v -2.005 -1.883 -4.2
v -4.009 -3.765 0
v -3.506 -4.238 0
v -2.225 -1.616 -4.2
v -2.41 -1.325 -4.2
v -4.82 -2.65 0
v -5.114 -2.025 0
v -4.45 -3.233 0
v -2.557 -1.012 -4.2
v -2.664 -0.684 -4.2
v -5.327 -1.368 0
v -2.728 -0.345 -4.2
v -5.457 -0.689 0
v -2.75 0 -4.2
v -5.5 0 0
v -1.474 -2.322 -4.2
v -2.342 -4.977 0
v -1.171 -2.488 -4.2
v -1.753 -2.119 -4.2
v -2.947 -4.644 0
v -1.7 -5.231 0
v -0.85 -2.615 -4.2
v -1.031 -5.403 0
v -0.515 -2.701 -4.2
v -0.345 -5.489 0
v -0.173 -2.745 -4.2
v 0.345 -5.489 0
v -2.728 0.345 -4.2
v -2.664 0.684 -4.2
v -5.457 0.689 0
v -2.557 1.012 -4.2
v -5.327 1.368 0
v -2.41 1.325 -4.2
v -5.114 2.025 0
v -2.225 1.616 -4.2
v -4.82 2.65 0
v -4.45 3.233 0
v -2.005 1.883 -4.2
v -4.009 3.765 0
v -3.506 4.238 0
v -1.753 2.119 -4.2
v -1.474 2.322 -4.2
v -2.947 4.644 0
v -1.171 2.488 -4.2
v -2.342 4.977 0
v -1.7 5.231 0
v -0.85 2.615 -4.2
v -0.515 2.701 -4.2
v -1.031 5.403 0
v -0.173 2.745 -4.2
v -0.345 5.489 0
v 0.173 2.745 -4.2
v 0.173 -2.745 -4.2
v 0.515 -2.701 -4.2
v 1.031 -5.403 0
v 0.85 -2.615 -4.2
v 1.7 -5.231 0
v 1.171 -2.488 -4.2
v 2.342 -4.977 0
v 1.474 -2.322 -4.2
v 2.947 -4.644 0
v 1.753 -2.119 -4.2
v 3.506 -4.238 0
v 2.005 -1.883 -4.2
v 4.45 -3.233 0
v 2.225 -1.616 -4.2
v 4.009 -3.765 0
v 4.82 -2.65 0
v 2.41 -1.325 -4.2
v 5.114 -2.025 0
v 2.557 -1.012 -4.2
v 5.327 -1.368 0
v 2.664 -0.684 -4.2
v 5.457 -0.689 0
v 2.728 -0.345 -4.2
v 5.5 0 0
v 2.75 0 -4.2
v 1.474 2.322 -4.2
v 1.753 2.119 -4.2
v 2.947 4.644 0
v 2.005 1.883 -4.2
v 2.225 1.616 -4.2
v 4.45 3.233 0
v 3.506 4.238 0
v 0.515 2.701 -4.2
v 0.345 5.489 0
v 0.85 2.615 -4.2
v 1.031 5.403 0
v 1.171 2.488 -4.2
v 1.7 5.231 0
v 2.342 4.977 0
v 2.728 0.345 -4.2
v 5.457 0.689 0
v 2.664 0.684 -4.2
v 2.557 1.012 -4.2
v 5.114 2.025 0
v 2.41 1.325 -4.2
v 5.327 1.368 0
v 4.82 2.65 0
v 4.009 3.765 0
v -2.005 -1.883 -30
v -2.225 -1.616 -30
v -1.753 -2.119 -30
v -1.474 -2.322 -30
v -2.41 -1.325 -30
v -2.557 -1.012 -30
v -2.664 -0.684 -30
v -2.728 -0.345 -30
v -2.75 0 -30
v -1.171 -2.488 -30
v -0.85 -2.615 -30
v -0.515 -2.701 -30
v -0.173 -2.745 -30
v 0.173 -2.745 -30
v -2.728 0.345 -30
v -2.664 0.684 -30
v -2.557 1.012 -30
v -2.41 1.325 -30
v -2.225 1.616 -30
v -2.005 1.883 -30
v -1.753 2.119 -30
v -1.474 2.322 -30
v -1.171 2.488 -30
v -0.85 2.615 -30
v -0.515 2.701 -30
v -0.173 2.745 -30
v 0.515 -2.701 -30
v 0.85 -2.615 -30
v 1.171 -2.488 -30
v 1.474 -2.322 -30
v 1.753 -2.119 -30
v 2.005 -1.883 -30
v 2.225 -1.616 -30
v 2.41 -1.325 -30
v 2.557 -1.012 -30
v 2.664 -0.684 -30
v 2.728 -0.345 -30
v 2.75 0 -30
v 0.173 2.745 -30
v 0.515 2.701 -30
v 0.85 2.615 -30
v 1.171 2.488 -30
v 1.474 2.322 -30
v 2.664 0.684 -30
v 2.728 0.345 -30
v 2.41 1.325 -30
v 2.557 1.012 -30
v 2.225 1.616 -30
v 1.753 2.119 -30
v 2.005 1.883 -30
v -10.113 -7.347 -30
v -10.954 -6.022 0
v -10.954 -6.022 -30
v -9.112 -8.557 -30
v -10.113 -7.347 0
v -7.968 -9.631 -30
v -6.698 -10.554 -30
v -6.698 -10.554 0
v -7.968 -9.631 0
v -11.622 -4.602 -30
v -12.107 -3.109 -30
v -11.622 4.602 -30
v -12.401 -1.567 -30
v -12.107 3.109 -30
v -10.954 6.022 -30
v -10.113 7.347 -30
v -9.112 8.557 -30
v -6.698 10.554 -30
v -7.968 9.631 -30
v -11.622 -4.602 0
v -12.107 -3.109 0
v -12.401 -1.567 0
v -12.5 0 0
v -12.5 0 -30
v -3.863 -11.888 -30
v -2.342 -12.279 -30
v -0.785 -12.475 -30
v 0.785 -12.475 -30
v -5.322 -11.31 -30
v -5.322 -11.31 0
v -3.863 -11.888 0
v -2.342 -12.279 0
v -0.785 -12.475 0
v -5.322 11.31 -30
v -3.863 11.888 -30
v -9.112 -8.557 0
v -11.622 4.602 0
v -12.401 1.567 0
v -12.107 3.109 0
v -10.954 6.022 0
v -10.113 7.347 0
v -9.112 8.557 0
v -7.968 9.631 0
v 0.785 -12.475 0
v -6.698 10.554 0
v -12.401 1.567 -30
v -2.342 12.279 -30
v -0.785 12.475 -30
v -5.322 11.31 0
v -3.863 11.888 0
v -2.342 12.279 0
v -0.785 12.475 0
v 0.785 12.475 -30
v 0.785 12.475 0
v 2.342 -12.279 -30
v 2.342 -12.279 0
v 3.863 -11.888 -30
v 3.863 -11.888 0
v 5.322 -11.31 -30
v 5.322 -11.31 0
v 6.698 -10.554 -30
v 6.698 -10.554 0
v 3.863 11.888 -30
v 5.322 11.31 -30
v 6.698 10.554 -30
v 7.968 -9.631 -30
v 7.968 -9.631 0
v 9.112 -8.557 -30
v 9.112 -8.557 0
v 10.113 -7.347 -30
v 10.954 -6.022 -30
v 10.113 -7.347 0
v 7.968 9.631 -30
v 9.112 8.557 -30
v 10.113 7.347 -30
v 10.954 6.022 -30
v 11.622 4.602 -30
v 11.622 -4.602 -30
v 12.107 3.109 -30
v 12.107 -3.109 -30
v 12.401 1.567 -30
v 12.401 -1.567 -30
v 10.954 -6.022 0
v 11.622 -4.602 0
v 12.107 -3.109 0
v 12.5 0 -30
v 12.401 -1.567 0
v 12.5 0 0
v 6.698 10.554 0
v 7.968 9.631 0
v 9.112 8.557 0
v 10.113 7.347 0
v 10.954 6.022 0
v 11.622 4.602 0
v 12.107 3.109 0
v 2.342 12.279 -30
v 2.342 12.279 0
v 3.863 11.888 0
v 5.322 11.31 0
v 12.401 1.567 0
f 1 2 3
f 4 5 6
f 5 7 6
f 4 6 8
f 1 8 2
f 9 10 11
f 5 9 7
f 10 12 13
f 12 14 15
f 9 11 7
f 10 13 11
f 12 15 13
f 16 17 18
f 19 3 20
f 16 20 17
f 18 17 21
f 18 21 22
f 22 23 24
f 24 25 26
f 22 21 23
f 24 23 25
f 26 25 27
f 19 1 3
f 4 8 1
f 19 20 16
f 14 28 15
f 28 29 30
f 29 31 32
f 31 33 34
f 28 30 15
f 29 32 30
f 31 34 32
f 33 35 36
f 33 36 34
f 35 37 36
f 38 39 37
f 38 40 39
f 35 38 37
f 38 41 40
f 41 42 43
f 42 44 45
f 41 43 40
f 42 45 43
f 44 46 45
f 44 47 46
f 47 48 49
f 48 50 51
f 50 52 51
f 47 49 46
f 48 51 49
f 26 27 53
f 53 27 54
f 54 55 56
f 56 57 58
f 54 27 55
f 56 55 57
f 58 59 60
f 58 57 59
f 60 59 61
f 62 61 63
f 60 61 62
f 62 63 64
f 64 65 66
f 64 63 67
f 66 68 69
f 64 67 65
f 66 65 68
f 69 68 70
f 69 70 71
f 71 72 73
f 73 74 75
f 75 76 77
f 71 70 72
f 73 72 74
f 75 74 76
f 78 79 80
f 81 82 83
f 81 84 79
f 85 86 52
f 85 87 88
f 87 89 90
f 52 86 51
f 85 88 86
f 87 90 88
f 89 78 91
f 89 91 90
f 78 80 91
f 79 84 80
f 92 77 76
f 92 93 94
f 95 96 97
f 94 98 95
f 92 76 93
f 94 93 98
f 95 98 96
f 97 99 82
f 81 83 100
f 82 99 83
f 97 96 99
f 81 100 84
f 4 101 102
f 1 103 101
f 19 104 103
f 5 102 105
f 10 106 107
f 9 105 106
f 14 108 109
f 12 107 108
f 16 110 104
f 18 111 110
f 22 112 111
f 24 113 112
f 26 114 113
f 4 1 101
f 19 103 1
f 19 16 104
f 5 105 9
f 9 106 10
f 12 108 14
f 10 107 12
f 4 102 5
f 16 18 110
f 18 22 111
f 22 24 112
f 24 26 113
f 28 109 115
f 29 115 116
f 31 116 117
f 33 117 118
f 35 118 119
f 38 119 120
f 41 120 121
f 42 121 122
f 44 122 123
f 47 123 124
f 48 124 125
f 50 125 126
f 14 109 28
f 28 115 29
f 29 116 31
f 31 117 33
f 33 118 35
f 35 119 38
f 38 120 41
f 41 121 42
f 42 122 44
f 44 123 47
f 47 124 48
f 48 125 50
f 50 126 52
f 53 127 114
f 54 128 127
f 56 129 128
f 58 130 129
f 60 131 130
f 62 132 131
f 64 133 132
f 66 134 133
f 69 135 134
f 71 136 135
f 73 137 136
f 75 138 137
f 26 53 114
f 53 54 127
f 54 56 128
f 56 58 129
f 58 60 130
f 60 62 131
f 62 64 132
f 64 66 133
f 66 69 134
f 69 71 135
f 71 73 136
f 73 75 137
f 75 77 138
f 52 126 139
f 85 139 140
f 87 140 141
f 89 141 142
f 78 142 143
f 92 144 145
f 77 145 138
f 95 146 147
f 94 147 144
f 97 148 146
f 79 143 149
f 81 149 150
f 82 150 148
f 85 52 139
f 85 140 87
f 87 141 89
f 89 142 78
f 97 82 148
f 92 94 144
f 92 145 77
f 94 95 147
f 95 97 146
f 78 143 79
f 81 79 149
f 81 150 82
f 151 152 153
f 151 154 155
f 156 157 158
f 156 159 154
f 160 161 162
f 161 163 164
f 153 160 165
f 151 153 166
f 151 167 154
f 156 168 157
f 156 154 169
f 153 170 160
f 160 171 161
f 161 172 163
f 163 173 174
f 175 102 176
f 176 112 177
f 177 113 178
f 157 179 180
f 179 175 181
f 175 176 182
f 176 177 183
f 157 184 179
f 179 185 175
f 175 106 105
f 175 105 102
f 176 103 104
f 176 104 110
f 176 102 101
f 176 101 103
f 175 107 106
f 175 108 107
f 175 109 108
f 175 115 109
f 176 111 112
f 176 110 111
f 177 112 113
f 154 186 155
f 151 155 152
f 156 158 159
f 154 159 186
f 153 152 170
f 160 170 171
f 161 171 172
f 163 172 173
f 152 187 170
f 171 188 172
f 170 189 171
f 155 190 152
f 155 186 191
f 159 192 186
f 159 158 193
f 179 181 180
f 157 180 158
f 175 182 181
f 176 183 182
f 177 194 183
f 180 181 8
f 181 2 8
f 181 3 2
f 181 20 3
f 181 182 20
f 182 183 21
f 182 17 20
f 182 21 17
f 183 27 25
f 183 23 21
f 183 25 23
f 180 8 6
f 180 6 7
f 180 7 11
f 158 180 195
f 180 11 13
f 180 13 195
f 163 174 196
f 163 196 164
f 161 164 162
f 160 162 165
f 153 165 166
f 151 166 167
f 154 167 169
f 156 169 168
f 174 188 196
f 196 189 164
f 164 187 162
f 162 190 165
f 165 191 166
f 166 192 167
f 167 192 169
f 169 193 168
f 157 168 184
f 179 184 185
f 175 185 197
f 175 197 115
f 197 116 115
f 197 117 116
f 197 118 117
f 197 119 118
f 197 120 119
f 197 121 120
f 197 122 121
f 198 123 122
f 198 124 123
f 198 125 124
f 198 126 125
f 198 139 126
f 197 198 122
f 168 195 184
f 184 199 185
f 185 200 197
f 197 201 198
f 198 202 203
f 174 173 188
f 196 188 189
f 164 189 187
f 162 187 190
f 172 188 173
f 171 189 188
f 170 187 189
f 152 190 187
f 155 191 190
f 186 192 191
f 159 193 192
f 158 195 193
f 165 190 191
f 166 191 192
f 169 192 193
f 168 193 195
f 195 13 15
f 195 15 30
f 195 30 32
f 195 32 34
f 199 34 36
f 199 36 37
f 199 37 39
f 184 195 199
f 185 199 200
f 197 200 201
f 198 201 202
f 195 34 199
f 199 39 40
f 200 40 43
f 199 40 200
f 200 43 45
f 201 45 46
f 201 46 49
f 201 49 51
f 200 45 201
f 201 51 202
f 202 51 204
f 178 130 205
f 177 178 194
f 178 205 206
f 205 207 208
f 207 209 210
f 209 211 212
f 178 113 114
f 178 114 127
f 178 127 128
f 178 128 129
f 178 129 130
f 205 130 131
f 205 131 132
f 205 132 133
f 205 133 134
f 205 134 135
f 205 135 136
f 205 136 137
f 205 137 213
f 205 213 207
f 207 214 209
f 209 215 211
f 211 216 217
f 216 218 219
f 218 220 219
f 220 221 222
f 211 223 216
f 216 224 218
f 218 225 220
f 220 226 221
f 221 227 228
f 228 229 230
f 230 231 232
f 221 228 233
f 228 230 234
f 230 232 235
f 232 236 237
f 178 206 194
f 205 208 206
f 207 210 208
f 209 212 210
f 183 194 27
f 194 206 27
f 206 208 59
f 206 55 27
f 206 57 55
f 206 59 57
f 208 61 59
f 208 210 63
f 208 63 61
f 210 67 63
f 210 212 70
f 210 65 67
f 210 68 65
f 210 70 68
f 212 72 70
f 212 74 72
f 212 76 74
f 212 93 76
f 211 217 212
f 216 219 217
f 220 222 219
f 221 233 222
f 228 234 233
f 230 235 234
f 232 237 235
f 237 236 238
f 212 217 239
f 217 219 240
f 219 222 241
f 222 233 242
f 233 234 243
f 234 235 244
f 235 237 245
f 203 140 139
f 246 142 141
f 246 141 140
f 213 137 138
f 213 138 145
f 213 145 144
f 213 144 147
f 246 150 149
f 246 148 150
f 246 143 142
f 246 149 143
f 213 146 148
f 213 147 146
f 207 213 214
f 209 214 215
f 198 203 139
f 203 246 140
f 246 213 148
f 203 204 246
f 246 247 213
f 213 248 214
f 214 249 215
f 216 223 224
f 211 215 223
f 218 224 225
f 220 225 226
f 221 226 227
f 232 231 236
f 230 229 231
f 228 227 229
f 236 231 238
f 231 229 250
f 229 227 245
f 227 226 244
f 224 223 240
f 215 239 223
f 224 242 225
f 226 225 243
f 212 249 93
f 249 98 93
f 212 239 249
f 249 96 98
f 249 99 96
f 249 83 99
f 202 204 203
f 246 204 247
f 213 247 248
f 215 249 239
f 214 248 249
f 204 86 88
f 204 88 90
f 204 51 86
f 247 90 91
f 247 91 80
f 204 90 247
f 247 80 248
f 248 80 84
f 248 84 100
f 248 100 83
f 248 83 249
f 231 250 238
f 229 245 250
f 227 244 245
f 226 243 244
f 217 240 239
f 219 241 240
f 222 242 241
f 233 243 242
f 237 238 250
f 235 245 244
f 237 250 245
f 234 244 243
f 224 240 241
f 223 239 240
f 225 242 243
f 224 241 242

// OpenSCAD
$fn = 50;

difference() {
	union() {
		translate(v = [0, 0, -30.0]) {
			cylinder(h = 30, r = 12.5);
		}
	}
	union() {
		translate(v = [0, 0, 0]) {
			rotate(a = [0, 0, 0]) {
				difference() {
					union() {
						translate(v = [0, 0, -33.0]) {
							cylinder(h = 33, r = 2.25);
						}
						translate(v = [0, 0, -4.2]) {
							cylinder(h = 4.2, r1 = 2.75, r2 = 5.5);
						}
						translate(v = [0, 0, -33.0]) {
							cylinder(h = 33, r = 2.75);
						}
						translate(v = [0, 0, -33.0]) {
							cylinder(h = 33, r = 2.25);
						}
					}
					union();
				}
			}
		}
	}
}
